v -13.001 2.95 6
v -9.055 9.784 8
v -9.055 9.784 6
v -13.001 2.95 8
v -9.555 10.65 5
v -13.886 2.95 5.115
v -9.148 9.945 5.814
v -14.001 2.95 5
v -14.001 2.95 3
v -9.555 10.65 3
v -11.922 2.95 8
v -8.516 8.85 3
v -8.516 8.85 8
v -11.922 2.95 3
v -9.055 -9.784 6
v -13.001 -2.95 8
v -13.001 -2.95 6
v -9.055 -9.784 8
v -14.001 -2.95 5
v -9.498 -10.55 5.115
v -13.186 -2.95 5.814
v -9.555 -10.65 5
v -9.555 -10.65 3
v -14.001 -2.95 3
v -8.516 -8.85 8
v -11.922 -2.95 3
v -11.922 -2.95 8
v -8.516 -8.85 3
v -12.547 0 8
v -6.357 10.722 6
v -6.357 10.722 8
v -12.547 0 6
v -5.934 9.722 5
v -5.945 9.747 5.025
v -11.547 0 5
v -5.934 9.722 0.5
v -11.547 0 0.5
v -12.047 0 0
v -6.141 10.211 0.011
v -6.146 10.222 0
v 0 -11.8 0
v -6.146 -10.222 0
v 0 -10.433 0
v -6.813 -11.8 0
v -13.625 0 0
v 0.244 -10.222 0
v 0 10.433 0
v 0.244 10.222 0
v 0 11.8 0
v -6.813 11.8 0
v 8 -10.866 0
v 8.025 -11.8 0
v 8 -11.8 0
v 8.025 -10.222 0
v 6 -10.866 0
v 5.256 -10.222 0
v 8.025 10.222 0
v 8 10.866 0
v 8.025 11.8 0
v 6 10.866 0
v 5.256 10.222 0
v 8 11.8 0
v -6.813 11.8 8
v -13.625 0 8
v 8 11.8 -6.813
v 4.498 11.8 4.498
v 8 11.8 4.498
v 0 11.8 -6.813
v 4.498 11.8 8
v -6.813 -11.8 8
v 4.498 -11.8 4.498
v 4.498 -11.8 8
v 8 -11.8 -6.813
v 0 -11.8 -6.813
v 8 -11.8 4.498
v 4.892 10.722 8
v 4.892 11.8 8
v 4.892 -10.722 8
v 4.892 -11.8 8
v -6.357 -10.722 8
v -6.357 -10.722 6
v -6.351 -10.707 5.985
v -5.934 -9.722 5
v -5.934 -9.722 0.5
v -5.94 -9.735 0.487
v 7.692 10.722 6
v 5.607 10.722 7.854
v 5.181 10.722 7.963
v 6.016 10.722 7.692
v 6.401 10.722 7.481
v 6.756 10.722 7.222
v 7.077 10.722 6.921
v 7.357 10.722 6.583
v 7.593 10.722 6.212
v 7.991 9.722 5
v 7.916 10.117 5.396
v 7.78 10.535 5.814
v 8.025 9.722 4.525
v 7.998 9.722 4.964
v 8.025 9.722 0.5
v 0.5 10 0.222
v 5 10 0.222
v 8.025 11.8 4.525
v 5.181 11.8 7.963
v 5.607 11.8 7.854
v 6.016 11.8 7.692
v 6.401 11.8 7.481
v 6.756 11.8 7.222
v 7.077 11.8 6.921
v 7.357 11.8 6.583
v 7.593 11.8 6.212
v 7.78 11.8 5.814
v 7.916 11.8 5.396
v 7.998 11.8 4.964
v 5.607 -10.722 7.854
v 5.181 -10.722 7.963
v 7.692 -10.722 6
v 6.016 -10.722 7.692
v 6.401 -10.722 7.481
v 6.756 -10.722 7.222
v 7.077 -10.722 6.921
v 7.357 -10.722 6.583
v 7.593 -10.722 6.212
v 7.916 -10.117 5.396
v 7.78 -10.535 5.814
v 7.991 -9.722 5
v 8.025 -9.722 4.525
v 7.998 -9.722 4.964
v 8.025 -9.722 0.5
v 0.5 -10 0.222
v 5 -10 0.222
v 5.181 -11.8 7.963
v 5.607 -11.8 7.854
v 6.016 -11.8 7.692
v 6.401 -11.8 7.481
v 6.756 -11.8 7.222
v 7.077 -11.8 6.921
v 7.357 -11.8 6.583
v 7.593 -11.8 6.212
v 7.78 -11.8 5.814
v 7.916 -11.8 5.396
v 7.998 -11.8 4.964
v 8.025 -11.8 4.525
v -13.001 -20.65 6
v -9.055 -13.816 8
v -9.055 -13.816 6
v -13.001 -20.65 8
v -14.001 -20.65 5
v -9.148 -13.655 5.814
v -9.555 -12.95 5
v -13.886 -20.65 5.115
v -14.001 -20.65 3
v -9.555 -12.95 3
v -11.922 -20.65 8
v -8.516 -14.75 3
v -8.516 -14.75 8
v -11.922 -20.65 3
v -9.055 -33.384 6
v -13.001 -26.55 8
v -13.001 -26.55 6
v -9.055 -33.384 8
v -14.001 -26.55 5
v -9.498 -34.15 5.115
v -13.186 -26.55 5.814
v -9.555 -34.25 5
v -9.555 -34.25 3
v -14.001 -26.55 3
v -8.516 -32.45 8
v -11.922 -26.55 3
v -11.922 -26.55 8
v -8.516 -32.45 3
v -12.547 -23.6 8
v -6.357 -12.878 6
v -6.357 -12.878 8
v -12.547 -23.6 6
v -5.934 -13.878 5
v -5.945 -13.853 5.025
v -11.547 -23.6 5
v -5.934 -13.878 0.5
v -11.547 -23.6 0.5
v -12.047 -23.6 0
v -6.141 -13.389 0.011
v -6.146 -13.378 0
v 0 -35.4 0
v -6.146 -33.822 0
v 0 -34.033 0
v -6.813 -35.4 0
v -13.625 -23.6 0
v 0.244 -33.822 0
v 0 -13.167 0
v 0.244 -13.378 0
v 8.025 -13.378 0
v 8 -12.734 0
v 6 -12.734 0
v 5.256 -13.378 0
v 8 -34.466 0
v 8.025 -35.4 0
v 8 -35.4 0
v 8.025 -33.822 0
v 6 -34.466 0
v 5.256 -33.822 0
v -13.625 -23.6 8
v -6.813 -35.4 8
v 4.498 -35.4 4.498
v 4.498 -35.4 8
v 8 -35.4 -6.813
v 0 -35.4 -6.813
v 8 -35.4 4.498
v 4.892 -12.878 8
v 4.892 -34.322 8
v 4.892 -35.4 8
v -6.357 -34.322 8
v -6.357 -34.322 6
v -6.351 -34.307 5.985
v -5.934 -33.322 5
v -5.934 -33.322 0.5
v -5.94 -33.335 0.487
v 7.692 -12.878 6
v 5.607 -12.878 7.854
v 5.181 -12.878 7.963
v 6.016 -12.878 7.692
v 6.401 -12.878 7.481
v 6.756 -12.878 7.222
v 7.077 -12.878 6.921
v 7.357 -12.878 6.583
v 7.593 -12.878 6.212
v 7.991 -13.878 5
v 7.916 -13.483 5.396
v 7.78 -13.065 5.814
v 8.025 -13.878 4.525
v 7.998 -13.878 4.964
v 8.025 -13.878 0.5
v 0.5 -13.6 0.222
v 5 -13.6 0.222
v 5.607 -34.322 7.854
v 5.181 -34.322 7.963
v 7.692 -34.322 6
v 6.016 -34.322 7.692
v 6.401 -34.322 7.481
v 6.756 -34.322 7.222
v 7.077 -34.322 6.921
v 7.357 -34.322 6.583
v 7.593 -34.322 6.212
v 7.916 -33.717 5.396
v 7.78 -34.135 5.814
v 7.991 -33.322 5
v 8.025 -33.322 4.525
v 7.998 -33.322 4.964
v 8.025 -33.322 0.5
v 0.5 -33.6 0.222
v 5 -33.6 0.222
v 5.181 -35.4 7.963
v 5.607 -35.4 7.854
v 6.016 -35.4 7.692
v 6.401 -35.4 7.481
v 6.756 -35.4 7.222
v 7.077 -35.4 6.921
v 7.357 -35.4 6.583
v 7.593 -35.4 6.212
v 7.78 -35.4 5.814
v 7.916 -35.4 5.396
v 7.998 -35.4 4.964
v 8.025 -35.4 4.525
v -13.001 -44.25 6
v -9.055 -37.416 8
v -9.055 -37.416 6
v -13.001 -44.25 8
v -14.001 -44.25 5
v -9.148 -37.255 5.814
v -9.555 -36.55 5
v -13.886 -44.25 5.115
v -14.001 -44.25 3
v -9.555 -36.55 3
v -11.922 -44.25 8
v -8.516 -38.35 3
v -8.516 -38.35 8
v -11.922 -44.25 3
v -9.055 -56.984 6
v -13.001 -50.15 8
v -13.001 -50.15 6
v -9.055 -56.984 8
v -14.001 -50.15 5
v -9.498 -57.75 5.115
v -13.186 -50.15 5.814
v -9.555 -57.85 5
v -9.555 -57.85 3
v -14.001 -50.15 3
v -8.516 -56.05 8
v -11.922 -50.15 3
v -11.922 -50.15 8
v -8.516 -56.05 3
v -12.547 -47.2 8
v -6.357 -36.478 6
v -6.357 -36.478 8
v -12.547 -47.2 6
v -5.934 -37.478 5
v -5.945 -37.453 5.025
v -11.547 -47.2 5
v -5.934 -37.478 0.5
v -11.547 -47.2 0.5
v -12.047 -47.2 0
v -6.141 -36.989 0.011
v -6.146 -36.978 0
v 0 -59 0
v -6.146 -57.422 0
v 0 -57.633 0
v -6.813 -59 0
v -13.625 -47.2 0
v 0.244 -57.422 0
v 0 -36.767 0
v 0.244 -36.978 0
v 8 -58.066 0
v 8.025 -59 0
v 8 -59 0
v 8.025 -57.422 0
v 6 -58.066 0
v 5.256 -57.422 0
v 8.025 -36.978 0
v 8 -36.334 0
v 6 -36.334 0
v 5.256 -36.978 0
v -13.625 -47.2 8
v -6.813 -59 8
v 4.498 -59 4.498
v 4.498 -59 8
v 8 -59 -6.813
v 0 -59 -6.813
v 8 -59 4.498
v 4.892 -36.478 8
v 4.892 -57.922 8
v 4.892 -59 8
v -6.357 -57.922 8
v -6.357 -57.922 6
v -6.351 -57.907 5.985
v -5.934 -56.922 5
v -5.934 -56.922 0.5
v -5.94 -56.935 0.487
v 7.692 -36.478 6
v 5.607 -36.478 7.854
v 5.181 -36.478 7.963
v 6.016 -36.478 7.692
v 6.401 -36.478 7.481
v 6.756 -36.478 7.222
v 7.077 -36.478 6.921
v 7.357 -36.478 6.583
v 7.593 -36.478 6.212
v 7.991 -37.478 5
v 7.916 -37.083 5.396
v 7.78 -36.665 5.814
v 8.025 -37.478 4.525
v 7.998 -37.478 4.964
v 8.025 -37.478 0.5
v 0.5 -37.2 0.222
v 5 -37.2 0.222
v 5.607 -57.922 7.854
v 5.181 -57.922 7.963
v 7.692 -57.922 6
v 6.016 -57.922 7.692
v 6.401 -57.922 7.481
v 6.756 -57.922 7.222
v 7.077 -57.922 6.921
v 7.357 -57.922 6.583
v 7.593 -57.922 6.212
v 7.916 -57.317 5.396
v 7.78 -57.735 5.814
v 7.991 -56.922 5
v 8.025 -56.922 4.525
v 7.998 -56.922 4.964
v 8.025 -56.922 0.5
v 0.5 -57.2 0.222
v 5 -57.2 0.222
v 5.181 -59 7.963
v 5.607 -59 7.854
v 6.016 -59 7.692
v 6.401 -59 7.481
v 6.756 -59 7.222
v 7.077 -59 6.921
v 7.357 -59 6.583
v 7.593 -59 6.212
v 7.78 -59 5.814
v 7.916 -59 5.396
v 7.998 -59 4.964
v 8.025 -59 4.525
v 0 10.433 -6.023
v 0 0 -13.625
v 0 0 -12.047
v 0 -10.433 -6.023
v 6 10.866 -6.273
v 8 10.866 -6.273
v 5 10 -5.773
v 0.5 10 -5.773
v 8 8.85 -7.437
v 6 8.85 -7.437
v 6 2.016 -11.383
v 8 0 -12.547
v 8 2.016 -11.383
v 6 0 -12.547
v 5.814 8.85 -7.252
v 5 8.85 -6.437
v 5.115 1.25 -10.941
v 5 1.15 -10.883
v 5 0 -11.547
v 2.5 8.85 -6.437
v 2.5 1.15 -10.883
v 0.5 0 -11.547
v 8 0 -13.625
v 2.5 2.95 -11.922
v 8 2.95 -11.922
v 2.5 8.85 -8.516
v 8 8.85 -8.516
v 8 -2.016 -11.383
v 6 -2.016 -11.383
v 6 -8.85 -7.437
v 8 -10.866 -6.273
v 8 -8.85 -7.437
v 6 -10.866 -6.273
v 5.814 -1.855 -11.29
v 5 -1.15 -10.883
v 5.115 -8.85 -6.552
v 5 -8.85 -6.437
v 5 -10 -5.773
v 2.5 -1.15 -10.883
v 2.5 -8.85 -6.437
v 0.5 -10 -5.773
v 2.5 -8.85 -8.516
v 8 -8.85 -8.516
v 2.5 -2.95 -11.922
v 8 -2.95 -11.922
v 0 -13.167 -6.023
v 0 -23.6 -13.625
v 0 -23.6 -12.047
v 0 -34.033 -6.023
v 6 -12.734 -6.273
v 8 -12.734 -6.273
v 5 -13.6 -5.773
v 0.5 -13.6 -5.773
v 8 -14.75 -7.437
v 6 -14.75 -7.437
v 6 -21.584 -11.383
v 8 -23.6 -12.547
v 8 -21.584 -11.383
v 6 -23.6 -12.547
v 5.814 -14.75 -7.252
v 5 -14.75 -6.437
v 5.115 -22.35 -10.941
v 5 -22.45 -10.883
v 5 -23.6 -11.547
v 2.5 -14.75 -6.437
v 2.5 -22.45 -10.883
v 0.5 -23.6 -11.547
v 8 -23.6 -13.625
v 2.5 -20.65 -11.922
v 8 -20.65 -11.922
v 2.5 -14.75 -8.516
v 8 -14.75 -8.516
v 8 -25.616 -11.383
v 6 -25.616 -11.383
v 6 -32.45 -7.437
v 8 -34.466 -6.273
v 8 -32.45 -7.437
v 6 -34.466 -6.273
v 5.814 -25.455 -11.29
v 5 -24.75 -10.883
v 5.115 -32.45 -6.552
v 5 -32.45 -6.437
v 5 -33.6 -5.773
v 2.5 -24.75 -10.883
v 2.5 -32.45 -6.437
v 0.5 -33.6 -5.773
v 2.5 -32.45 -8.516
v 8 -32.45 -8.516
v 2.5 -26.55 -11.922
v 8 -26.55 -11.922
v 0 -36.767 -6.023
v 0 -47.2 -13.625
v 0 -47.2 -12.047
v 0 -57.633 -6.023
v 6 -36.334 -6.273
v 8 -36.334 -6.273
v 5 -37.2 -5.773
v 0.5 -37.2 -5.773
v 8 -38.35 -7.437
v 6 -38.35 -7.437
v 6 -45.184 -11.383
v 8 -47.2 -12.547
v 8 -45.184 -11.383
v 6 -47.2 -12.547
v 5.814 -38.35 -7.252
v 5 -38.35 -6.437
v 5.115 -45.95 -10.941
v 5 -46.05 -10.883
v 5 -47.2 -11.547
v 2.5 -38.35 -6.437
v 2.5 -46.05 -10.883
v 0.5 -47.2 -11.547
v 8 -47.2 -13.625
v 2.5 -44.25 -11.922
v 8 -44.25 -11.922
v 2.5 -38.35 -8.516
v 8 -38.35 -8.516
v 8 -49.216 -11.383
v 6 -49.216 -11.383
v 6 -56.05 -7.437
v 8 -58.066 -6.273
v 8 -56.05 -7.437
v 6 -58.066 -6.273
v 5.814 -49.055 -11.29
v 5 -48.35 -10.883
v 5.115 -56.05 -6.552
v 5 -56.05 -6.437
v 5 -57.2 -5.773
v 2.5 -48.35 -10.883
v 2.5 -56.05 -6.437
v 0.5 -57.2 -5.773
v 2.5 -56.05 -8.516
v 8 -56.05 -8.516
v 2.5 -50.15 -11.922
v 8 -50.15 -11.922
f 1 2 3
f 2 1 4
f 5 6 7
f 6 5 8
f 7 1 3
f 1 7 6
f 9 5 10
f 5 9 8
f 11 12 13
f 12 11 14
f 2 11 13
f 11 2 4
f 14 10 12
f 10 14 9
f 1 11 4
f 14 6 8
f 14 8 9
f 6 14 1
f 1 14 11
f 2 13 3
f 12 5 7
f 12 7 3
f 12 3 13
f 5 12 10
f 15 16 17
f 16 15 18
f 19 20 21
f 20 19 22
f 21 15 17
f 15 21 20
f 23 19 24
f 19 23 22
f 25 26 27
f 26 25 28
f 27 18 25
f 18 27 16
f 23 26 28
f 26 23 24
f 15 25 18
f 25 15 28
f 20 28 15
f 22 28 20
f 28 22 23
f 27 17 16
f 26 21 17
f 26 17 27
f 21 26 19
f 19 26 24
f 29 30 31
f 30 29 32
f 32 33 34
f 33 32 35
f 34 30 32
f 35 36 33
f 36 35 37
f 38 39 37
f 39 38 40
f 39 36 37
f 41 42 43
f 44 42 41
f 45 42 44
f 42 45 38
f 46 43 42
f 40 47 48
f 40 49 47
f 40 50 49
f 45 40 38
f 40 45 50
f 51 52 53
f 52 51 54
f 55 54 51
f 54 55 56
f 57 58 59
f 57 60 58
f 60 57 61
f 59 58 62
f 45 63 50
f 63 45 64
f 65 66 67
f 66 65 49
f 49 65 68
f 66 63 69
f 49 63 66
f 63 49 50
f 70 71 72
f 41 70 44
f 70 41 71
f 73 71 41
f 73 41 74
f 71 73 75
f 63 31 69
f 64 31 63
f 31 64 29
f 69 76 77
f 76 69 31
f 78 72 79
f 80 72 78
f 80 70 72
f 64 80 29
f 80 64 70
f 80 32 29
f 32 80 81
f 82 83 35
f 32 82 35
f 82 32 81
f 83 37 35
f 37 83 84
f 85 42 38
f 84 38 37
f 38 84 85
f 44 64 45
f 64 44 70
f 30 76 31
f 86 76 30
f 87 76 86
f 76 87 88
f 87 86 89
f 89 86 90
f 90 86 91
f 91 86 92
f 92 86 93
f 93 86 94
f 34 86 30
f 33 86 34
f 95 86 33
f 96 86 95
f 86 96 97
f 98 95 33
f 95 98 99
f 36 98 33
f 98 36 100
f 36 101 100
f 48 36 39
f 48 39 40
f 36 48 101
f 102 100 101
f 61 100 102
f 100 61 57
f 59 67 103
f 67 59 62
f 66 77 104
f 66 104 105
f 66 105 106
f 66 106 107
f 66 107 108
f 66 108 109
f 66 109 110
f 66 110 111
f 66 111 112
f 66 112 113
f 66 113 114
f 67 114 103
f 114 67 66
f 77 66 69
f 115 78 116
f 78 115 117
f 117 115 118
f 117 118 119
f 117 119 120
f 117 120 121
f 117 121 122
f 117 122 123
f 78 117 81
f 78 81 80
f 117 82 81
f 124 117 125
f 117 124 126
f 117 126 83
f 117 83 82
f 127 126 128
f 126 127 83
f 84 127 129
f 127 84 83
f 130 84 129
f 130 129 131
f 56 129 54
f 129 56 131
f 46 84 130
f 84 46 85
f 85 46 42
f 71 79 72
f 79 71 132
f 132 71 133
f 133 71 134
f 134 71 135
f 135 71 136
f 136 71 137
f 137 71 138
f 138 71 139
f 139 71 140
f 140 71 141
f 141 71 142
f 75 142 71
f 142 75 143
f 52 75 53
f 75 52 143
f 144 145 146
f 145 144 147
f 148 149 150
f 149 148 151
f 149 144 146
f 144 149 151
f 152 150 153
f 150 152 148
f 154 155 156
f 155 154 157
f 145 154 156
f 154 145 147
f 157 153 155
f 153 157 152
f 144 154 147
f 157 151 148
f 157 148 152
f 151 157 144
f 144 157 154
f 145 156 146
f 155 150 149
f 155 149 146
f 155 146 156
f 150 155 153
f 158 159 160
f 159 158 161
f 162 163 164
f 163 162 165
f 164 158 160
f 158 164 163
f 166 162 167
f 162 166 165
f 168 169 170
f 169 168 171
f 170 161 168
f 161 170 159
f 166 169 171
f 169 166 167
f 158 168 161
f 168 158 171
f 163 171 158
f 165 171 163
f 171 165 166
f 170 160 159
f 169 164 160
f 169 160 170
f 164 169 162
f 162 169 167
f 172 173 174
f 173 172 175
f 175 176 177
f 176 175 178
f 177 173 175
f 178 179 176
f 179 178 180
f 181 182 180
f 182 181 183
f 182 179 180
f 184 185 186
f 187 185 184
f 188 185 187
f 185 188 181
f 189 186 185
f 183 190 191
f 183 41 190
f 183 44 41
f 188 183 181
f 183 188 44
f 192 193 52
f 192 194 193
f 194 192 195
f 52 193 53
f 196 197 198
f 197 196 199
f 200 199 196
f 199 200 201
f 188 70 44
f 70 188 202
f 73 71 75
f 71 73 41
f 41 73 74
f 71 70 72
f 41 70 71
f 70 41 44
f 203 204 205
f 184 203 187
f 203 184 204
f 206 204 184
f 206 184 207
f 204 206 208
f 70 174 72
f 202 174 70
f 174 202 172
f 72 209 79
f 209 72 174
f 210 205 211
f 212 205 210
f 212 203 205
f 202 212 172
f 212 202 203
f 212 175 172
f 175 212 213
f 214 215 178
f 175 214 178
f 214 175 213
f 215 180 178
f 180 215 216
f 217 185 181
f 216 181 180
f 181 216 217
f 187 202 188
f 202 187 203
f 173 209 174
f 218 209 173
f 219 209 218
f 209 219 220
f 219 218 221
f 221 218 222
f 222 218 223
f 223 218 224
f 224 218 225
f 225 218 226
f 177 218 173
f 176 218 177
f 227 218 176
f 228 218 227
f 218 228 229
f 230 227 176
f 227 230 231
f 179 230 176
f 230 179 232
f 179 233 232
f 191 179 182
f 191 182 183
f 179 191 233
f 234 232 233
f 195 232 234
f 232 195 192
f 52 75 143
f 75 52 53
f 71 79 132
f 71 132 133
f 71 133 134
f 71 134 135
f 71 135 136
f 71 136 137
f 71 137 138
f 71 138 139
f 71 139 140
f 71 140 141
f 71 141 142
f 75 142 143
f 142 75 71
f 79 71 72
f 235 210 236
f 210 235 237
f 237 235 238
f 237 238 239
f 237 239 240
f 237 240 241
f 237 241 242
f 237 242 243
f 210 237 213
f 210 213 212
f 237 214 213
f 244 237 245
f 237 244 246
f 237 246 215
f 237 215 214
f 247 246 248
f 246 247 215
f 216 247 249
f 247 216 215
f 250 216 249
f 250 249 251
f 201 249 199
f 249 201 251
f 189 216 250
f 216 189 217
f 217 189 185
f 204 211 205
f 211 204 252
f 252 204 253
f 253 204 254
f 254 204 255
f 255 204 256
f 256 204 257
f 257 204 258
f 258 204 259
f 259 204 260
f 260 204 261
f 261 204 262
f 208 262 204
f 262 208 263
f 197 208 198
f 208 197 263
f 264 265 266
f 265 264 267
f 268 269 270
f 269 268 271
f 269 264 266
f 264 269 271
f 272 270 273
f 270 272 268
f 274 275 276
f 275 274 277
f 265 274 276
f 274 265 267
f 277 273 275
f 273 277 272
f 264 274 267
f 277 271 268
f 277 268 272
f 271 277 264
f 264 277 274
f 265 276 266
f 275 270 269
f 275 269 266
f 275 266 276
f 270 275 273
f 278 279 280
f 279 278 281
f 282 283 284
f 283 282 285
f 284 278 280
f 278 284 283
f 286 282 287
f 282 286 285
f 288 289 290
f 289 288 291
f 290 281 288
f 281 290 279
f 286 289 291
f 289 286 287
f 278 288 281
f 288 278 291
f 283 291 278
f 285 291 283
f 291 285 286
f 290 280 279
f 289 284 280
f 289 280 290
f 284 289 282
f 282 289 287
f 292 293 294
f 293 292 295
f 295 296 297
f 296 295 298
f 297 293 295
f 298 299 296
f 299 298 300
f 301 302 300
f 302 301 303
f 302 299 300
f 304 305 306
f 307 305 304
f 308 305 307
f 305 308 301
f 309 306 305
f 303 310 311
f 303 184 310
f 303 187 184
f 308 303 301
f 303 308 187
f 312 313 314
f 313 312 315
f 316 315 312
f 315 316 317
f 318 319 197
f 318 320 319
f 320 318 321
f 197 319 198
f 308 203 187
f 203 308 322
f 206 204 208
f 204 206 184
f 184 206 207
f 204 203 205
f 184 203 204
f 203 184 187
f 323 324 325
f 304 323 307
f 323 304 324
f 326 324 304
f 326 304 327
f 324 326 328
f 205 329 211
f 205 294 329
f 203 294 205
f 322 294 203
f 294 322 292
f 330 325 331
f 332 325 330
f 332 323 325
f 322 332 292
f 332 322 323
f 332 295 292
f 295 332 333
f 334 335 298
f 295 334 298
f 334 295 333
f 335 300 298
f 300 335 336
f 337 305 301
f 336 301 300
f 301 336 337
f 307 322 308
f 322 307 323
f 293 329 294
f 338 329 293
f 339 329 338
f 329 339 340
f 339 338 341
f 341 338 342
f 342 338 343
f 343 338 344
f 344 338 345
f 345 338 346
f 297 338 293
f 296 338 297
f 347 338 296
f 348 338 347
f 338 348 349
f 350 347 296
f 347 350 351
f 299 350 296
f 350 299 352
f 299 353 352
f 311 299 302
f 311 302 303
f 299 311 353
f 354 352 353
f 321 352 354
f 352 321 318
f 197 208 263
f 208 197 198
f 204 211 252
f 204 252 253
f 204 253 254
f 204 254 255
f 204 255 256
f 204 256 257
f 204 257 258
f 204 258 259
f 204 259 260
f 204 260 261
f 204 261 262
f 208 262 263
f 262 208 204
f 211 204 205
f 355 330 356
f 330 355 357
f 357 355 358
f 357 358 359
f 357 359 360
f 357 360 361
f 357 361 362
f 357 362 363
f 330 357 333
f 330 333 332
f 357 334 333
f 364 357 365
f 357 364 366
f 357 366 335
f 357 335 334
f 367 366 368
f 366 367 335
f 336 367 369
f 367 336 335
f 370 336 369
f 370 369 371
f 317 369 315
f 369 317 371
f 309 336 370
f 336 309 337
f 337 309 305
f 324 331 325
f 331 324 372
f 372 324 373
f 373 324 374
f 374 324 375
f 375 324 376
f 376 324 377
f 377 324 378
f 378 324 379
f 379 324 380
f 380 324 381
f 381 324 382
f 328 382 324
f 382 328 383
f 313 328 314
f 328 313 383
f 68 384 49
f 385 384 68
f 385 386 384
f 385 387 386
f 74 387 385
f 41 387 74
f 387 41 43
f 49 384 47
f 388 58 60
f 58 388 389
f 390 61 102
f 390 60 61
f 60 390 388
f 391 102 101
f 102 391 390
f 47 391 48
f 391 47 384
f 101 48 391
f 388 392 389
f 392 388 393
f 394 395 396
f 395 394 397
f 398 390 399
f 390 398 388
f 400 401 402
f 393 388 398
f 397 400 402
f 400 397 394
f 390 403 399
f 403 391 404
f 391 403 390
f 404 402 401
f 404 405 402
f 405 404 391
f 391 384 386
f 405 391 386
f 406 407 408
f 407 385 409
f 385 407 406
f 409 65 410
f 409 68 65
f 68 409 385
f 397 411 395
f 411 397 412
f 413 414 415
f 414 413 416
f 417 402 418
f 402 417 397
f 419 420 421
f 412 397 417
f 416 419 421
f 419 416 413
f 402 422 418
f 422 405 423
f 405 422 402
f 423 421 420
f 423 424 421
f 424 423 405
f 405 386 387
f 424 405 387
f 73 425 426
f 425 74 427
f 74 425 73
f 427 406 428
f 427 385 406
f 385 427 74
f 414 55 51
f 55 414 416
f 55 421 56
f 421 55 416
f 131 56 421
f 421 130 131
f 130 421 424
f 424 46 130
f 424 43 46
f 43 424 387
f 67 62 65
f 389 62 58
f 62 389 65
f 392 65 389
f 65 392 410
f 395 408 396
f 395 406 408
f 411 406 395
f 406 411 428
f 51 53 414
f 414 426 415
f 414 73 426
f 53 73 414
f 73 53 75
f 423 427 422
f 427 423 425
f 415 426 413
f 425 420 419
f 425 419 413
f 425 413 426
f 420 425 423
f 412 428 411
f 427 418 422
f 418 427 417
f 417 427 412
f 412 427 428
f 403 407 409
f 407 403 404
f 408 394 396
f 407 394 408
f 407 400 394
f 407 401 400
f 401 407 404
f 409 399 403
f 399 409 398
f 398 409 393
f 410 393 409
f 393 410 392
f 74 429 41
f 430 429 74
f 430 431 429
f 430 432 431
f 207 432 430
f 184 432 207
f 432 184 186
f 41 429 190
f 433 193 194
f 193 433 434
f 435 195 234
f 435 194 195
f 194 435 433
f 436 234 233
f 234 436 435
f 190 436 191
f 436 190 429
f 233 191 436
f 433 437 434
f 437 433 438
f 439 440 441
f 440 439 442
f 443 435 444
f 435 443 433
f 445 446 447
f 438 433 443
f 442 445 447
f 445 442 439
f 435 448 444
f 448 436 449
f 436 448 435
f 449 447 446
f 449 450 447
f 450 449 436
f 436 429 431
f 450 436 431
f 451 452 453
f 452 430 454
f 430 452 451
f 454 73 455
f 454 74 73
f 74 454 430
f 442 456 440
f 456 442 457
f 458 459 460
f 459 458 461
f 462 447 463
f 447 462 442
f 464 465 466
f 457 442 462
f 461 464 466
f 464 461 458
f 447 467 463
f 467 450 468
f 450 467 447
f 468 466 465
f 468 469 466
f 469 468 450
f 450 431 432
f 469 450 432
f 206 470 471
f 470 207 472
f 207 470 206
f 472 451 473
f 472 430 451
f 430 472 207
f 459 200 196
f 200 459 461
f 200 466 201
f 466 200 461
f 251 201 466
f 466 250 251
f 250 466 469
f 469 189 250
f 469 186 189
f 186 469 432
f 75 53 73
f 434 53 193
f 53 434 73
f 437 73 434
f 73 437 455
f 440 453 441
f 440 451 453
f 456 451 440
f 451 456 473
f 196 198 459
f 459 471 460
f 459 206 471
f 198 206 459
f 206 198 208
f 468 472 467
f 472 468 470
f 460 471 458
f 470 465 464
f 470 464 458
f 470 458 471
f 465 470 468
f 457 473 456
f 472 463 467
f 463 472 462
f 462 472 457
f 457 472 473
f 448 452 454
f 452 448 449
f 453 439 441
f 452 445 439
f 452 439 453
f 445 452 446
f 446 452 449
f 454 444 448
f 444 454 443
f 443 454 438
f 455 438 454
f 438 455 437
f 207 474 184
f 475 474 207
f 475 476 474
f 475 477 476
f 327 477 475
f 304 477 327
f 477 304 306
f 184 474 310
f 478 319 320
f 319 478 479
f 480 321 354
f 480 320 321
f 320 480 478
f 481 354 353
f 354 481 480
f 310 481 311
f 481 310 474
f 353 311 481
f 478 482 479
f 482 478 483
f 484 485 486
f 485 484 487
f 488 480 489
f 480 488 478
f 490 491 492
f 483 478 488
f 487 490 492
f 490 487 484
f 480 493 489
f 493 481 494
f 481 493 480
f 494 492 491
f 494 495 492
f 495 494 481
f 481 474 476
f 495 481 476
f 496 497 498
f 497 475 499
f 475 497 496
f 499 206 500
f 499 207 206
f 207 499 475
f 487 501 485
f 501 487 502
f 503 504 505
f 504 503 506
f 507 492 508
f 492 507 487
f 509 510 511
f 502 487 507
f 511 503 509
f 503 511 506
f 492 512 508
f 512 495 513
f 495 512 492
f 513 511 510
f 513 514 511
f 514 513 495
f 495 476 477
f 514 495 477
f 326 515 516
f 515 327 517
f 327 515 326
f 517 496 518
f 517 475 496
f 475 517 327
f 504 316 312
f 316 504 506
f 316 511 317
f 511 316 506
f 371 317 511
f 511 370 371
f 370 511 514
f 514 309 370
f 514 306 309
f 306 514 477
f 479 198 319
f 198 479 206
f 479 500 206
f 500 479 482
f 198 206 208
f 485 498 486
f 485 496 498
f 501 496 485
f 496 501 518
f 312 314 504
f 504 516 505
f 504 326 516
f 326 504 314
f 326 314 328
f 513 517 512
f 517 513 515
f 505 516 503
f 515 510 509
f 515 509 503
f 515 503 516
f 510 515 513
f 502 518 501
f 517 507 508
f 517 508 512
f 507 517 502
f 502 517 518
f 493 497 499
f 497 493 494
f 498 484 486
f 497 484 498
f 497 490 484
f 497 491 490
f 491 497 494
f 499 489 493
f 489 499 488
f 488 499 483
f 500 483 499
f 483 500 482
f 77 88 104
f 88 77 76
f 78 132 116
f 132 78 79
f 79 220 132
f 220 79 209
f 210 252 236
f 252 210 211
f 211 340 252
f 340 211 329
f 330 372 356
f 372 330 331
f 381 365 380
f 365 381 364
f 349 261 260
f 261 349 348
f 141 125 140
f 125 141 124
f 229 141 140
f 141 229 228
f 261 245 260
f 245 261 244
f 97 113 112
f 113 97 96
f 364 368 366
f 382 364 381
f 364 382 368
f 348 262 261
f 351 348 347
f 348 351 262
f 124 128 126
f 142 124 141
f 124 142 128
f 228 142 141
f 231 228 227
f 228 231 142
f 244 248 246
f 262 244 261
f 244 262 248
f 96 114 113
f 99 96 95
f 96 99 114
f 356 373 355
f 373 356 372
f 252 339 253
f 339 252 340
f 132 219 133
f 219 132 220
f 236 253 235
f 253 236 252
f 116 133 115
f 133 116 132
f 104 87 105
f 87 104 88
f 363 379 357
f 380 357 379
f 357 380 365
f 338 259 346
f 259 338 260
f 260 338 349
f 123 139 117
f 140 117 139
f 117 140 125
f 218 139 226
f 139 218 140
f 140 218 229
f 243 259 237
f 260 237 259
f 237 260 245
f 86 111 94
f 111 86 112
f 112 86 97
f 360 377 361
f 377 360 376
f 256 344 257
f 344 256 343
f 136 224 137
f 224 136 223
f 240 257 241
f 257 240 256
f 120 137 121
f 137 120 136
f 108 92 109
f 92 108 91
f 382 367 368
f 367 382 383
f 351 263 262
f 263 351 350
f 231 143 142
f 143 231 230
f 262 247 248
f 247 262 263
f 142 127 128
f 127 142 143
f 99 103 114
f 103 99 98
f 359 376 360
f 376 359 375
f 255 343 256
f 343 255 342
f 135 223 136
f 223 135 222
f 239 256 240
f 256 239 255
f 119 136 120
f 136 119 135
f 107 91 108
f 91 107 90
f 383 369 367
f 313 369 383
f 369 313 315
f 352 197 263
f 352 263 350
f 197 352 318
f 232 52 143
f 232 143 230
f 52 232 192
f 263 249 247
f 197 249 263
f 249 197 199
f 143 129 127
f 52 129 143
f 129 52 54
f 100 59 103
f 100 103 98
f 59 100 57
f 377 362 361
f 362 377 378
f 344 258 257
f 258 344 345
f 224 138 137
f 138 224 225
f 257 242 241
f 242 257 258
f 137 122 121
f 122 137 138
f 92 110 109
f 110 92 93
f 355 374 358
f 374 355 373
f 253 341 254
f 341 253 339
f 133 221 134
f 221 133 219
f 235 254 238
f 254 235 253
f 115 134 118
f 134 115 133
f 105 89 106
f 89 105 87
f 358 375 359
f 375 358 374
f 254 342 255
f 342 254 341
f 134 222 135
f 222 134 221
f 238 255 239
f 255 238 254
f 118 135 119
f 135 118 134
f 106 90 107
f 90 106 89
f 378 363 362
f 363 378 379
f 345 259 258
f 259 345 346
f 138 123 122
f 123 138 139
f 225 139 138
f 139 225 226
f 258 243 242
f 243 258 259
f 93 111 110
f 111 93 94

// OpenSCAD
// file: honeycomb_element.scad
$fn = 50;

radius = 13.6;
diameter = radius * 2;

h_inner = 10;
r_inner = h_inner * 2 / sqrt(3);

h_outer = 10 + 1.8;
r_outer = h_outer * 2 / sqrt(3);

h_thin = 10 + 1;
r_thin = h_thin * 2 / sqrt(3);

total_height = 8;

small_value = 0.1;

clips_height = 5;
clips_offset = 0.5;
clips_side_offset = 0.00;

module basic_polygon() {
  polygon(
    [
      [r_outer, total_height],
      [r_outer, 0],
      [r_inner + 0.5, 0],
      [r_inner, 0.5],
      [r_inner, total_height - 3],
      [r_inner + 1, total_height - 2],
      [r_inner + 1, total_height],
    ]
  );
}

module basic_model() {
  rotate_extrude($fn=6) {
    basic_polygon();
  }
}

module panel_with_clips(pin_1 = false, pin_2 = false, pin_3 = false, pin_4 = false, pin_5 = false, pin_6 = false, slot_1 = false, slot_2 = false, slot_3 = false, slot_4 = false, slot_5 = false, slot_6 = false) {

  difference() {
    basic_model();

    if (slot_1) {
      rotate([0, 0, 0])
        translate([0, -h_outer * 2, total_height - (clips_height + clips_offset) / 2])
          linear_extrude(height=clips_height + clips_offset, center=true)
            polygon([[clips_side_offset, h_outer / 2], [-clips_side_offset, h_outer / 2], [-r_outer / 2 - clips_side_offset, h_outer * 1.5], [r_outer / 2 + clips_side_offset, h_outer * 1.5]]);
    }

    if (slot_2) {
      rotate([0, 0, 60])
        translate([0, -h_outer * 2, total_height - (clips_height + clips_offset) / 2])
          linear_extrude(height=clips_height + clips_offset, center=true)
            polygon([[clips_side_offset, h_outer / 2], [-clips_side_offset, h_outer / 2], [-r_outer / 2 - clips_side_offset, h_outer * 1.5], [r_outer / 2 + clips_side_offset, h_outer * 1.5]]);
    }

    if (slot_3) {
      rotate([0, 0, 120])
        translate([0, -h_outer * 2, total_height - (clips_height + clips_offset) / 2])
          linear_extrude(height=clips_height + clips_offset, center=true)
            polygon([[clips_side_offset, h_outer / 2], [-clips_side_offset, h_outer / 2], [-r_outer / 2 - clips_side_offset, h_outer * 1.5], [r_outer / 2 + clips_side_offset, h_outer * 1.5]]);
    }

    if (slot_4) {
      rotate([0, 0, 180])
        translate([0, -h_outer * 2, total_height - (clips_height + clips_offset) / 2])
          linear_extrude(height=clips_height + clips_offset, center=true)
            polygon([[clips_side_offset, h_outer / 2], [-clips_side_offset, h_outer / 2], [-r_outer / 2 - clips_side_offset, h_outer * 1.5], [r_outer / 2 + clips_side_offset, h_outer * 1.5]]);
    }

    if (slot_5) {
      rotate([0, 0, 240])
        translate([0, -h_outer * 2, total_height - (clips_height + clips_offset) / 2])
          linear_extrude(height=clips_height + clips_offset, center=true)
            polygon([[clips_side_offset, h_outer / 2], [-clips_side_offset, h_outer / 2], [-r_outer / 2 - clips_side_offset, h_outer * 1.5], [r_outer / 2 + clips_side_offset, h_outer * 1.5]]);
    }

    if (slot_6) {
      rotate([0, 0, 300])
        translate([0, -h_outer * 2, total_height - (clips_height + clips_offset) / 2])
          linear_extrude(height=clips_height + clips_offset, center=true)
            polygon([[clips_side_offset, h_outer / 2], [-clips_side_offset, h_outer / 2], [-r_outer / 2 - clips_side_offset, h_outer * 1.5], [r_outer / 2 + clips_side_offset, h_outer * 1.5]]);
    }
  }

  if (pin_1) {
    intersection() {
      translate([0, -h_outer * 2, 0])
        basic_model();
      translate([0, 0, total_height - clips_height / 2]) {
        rotate([0, 0, -180])
          linear_extrude(height=clips_height, center=true)
            polygon([[0, h_outer / 2], [-r_outer / 2, h_outer * 1.5], [r_outer / 2, h_outer * 1.5]]);
      }
    }
  }

  if (pin_2) {
    intersection() {
      translate([r_outer * 1.5, -h_outer, 0])
        basic_model();
      translate([0, 0, total_height - clips_height / 2]) {
        rotate([0, 0, -120])
          linear_extrude(height=clips_height, center=true)
            polygon([[0, h_outer / 2], [-r_outer / 2, h_outer * 1.5], [r_outer / 2, h_outer * 1.5]]);
      }
    }
  }

  if (pin_3) {
    intersection() {
      translate([r_outer * 1.5, h_outer, 0])
        basic_model();
      translate([0, 0, total_height - clips_height / 2]) {
        rotate([0, 0, -60])
          linear_extrude(height=clips_height, center=true)
            polygon([[0, h_outer / 2], [-r_outer / 2, h_outer * 1.5], [r_outer / 2, h_outer * 1.5]]);
      }
    }
  }

  if (pin_4) {
    intersection() {
      translate([0, h_outer * 2, 0])
        basic_model();

      translate([0, 0, total_height - clips_height / 2]) {
        linear_extrude(height=clips_height, center=true)
          polygon([[0, h_outer / 2], [-r_outer / 2, h_outer * 1.5], [r_outer / 2, h_outer * 1.5]]);
      }
    }
  }

  if (pin_5) {
    intersection() {
      translate([-r_outer * 1.5, h_outer, 0])
        basic_model();
      translate([0, 0, total_height - clips_height / 2]) {
        rotate([0, 0, 60])
          linear_extrude(height=clips_height, center=true)
            polygon([[0, h_outer / 2], [-r_outer / 2, h_outer * 1.5], [r_outer / 2, h_outer * 1.5]]);
      }
    }
  }

  if (pin_6) {
    intersection() {
      translate([-r_outer * 1.5, -h_outer, 0])
        basic_model();

      translate([0, 0, total_height - clips_height / 2]) {
        rotate([0, 0, 120])
          linear_extrude(height=clips_height, center=true)
            polygon([[0, h_outer / 2], [-r_outer / 2, h_outer * 1.5], [r_outer / 2, h_outer * 1.5]]);
      }
    }
  }
}

// end honeycomb_element.scad
// main file
$fn = 50;

h_outer = 10+1.8;
r_outer = h_outer * 2/sqrt(3);



use <honeycomb_element.scad>;



module wall_corner_side_turned_element() {
    difference() {
    panel_with_clips(
        slot_2=true,
        slot_3=true,
        pin_5=true,
        pin_6=true
      );
    
    translate([-(r_outer+r_outer - (r_outer - h_outer)*5),0,0])
      cube([r_outer*2, r_outer*2, r_outer*2], center=true);
    }
    
}

module wall_corner_side_element() {
    difference() {
    panel_with_clips(
        slot_2=true,
        slot_3=true,
        pin_5=true,
        pin_6=true
      );
    
    translate([r_outer+r_outer - (r_outer - h_outer)*5,0,0])
      cube([r_outer*2, r_outer*2, r_outer*2], center=true);
    }
    
    translate([h_outer/2+1, h_outer-r_outer, 0])
      rotate([90, 0, 90])
        linear_extrude(height = r_outer * 2, center=true)
        basic_polygon();
    
    
    translate([h_outer/2+1, -(h_outer-r_outer), 0])
      rotate([90, 0, -90])
        linear_extrude(height = r_outer * 2, center=true)
        basic_polygon();

}

module wall_corner_side() {
    for (i = [0:2]) {    
      translate([0, -i*h_outer*2, 0])
        wall_corner_side_element();
    }
}

module wall_corner_side_turned() {
    for (i = [0:2]) {    
      translate([0, -i*h_outer*2, 0])
        wall_corner_side_turned_element();
    }
}

module wall_corner() {
    corner_radius = 3.5;
    
    intersection() {
      translate([-5.6, -7.5*r_outer*2/2+h_outer, -5.6])
        minkowski() {
            cube([r_outer*2-corner_radius*2, 8*r_outer*2-corner_radius*2, r_outer*2-corner_radius*2], center=true);
            sphere(r=corner_radius);
        }
      union() {
          wall_corner_side();
          rotate([0, 90, 0])
              wall_corner_side_turned();
      }
        
    }
}


wall_corner();
